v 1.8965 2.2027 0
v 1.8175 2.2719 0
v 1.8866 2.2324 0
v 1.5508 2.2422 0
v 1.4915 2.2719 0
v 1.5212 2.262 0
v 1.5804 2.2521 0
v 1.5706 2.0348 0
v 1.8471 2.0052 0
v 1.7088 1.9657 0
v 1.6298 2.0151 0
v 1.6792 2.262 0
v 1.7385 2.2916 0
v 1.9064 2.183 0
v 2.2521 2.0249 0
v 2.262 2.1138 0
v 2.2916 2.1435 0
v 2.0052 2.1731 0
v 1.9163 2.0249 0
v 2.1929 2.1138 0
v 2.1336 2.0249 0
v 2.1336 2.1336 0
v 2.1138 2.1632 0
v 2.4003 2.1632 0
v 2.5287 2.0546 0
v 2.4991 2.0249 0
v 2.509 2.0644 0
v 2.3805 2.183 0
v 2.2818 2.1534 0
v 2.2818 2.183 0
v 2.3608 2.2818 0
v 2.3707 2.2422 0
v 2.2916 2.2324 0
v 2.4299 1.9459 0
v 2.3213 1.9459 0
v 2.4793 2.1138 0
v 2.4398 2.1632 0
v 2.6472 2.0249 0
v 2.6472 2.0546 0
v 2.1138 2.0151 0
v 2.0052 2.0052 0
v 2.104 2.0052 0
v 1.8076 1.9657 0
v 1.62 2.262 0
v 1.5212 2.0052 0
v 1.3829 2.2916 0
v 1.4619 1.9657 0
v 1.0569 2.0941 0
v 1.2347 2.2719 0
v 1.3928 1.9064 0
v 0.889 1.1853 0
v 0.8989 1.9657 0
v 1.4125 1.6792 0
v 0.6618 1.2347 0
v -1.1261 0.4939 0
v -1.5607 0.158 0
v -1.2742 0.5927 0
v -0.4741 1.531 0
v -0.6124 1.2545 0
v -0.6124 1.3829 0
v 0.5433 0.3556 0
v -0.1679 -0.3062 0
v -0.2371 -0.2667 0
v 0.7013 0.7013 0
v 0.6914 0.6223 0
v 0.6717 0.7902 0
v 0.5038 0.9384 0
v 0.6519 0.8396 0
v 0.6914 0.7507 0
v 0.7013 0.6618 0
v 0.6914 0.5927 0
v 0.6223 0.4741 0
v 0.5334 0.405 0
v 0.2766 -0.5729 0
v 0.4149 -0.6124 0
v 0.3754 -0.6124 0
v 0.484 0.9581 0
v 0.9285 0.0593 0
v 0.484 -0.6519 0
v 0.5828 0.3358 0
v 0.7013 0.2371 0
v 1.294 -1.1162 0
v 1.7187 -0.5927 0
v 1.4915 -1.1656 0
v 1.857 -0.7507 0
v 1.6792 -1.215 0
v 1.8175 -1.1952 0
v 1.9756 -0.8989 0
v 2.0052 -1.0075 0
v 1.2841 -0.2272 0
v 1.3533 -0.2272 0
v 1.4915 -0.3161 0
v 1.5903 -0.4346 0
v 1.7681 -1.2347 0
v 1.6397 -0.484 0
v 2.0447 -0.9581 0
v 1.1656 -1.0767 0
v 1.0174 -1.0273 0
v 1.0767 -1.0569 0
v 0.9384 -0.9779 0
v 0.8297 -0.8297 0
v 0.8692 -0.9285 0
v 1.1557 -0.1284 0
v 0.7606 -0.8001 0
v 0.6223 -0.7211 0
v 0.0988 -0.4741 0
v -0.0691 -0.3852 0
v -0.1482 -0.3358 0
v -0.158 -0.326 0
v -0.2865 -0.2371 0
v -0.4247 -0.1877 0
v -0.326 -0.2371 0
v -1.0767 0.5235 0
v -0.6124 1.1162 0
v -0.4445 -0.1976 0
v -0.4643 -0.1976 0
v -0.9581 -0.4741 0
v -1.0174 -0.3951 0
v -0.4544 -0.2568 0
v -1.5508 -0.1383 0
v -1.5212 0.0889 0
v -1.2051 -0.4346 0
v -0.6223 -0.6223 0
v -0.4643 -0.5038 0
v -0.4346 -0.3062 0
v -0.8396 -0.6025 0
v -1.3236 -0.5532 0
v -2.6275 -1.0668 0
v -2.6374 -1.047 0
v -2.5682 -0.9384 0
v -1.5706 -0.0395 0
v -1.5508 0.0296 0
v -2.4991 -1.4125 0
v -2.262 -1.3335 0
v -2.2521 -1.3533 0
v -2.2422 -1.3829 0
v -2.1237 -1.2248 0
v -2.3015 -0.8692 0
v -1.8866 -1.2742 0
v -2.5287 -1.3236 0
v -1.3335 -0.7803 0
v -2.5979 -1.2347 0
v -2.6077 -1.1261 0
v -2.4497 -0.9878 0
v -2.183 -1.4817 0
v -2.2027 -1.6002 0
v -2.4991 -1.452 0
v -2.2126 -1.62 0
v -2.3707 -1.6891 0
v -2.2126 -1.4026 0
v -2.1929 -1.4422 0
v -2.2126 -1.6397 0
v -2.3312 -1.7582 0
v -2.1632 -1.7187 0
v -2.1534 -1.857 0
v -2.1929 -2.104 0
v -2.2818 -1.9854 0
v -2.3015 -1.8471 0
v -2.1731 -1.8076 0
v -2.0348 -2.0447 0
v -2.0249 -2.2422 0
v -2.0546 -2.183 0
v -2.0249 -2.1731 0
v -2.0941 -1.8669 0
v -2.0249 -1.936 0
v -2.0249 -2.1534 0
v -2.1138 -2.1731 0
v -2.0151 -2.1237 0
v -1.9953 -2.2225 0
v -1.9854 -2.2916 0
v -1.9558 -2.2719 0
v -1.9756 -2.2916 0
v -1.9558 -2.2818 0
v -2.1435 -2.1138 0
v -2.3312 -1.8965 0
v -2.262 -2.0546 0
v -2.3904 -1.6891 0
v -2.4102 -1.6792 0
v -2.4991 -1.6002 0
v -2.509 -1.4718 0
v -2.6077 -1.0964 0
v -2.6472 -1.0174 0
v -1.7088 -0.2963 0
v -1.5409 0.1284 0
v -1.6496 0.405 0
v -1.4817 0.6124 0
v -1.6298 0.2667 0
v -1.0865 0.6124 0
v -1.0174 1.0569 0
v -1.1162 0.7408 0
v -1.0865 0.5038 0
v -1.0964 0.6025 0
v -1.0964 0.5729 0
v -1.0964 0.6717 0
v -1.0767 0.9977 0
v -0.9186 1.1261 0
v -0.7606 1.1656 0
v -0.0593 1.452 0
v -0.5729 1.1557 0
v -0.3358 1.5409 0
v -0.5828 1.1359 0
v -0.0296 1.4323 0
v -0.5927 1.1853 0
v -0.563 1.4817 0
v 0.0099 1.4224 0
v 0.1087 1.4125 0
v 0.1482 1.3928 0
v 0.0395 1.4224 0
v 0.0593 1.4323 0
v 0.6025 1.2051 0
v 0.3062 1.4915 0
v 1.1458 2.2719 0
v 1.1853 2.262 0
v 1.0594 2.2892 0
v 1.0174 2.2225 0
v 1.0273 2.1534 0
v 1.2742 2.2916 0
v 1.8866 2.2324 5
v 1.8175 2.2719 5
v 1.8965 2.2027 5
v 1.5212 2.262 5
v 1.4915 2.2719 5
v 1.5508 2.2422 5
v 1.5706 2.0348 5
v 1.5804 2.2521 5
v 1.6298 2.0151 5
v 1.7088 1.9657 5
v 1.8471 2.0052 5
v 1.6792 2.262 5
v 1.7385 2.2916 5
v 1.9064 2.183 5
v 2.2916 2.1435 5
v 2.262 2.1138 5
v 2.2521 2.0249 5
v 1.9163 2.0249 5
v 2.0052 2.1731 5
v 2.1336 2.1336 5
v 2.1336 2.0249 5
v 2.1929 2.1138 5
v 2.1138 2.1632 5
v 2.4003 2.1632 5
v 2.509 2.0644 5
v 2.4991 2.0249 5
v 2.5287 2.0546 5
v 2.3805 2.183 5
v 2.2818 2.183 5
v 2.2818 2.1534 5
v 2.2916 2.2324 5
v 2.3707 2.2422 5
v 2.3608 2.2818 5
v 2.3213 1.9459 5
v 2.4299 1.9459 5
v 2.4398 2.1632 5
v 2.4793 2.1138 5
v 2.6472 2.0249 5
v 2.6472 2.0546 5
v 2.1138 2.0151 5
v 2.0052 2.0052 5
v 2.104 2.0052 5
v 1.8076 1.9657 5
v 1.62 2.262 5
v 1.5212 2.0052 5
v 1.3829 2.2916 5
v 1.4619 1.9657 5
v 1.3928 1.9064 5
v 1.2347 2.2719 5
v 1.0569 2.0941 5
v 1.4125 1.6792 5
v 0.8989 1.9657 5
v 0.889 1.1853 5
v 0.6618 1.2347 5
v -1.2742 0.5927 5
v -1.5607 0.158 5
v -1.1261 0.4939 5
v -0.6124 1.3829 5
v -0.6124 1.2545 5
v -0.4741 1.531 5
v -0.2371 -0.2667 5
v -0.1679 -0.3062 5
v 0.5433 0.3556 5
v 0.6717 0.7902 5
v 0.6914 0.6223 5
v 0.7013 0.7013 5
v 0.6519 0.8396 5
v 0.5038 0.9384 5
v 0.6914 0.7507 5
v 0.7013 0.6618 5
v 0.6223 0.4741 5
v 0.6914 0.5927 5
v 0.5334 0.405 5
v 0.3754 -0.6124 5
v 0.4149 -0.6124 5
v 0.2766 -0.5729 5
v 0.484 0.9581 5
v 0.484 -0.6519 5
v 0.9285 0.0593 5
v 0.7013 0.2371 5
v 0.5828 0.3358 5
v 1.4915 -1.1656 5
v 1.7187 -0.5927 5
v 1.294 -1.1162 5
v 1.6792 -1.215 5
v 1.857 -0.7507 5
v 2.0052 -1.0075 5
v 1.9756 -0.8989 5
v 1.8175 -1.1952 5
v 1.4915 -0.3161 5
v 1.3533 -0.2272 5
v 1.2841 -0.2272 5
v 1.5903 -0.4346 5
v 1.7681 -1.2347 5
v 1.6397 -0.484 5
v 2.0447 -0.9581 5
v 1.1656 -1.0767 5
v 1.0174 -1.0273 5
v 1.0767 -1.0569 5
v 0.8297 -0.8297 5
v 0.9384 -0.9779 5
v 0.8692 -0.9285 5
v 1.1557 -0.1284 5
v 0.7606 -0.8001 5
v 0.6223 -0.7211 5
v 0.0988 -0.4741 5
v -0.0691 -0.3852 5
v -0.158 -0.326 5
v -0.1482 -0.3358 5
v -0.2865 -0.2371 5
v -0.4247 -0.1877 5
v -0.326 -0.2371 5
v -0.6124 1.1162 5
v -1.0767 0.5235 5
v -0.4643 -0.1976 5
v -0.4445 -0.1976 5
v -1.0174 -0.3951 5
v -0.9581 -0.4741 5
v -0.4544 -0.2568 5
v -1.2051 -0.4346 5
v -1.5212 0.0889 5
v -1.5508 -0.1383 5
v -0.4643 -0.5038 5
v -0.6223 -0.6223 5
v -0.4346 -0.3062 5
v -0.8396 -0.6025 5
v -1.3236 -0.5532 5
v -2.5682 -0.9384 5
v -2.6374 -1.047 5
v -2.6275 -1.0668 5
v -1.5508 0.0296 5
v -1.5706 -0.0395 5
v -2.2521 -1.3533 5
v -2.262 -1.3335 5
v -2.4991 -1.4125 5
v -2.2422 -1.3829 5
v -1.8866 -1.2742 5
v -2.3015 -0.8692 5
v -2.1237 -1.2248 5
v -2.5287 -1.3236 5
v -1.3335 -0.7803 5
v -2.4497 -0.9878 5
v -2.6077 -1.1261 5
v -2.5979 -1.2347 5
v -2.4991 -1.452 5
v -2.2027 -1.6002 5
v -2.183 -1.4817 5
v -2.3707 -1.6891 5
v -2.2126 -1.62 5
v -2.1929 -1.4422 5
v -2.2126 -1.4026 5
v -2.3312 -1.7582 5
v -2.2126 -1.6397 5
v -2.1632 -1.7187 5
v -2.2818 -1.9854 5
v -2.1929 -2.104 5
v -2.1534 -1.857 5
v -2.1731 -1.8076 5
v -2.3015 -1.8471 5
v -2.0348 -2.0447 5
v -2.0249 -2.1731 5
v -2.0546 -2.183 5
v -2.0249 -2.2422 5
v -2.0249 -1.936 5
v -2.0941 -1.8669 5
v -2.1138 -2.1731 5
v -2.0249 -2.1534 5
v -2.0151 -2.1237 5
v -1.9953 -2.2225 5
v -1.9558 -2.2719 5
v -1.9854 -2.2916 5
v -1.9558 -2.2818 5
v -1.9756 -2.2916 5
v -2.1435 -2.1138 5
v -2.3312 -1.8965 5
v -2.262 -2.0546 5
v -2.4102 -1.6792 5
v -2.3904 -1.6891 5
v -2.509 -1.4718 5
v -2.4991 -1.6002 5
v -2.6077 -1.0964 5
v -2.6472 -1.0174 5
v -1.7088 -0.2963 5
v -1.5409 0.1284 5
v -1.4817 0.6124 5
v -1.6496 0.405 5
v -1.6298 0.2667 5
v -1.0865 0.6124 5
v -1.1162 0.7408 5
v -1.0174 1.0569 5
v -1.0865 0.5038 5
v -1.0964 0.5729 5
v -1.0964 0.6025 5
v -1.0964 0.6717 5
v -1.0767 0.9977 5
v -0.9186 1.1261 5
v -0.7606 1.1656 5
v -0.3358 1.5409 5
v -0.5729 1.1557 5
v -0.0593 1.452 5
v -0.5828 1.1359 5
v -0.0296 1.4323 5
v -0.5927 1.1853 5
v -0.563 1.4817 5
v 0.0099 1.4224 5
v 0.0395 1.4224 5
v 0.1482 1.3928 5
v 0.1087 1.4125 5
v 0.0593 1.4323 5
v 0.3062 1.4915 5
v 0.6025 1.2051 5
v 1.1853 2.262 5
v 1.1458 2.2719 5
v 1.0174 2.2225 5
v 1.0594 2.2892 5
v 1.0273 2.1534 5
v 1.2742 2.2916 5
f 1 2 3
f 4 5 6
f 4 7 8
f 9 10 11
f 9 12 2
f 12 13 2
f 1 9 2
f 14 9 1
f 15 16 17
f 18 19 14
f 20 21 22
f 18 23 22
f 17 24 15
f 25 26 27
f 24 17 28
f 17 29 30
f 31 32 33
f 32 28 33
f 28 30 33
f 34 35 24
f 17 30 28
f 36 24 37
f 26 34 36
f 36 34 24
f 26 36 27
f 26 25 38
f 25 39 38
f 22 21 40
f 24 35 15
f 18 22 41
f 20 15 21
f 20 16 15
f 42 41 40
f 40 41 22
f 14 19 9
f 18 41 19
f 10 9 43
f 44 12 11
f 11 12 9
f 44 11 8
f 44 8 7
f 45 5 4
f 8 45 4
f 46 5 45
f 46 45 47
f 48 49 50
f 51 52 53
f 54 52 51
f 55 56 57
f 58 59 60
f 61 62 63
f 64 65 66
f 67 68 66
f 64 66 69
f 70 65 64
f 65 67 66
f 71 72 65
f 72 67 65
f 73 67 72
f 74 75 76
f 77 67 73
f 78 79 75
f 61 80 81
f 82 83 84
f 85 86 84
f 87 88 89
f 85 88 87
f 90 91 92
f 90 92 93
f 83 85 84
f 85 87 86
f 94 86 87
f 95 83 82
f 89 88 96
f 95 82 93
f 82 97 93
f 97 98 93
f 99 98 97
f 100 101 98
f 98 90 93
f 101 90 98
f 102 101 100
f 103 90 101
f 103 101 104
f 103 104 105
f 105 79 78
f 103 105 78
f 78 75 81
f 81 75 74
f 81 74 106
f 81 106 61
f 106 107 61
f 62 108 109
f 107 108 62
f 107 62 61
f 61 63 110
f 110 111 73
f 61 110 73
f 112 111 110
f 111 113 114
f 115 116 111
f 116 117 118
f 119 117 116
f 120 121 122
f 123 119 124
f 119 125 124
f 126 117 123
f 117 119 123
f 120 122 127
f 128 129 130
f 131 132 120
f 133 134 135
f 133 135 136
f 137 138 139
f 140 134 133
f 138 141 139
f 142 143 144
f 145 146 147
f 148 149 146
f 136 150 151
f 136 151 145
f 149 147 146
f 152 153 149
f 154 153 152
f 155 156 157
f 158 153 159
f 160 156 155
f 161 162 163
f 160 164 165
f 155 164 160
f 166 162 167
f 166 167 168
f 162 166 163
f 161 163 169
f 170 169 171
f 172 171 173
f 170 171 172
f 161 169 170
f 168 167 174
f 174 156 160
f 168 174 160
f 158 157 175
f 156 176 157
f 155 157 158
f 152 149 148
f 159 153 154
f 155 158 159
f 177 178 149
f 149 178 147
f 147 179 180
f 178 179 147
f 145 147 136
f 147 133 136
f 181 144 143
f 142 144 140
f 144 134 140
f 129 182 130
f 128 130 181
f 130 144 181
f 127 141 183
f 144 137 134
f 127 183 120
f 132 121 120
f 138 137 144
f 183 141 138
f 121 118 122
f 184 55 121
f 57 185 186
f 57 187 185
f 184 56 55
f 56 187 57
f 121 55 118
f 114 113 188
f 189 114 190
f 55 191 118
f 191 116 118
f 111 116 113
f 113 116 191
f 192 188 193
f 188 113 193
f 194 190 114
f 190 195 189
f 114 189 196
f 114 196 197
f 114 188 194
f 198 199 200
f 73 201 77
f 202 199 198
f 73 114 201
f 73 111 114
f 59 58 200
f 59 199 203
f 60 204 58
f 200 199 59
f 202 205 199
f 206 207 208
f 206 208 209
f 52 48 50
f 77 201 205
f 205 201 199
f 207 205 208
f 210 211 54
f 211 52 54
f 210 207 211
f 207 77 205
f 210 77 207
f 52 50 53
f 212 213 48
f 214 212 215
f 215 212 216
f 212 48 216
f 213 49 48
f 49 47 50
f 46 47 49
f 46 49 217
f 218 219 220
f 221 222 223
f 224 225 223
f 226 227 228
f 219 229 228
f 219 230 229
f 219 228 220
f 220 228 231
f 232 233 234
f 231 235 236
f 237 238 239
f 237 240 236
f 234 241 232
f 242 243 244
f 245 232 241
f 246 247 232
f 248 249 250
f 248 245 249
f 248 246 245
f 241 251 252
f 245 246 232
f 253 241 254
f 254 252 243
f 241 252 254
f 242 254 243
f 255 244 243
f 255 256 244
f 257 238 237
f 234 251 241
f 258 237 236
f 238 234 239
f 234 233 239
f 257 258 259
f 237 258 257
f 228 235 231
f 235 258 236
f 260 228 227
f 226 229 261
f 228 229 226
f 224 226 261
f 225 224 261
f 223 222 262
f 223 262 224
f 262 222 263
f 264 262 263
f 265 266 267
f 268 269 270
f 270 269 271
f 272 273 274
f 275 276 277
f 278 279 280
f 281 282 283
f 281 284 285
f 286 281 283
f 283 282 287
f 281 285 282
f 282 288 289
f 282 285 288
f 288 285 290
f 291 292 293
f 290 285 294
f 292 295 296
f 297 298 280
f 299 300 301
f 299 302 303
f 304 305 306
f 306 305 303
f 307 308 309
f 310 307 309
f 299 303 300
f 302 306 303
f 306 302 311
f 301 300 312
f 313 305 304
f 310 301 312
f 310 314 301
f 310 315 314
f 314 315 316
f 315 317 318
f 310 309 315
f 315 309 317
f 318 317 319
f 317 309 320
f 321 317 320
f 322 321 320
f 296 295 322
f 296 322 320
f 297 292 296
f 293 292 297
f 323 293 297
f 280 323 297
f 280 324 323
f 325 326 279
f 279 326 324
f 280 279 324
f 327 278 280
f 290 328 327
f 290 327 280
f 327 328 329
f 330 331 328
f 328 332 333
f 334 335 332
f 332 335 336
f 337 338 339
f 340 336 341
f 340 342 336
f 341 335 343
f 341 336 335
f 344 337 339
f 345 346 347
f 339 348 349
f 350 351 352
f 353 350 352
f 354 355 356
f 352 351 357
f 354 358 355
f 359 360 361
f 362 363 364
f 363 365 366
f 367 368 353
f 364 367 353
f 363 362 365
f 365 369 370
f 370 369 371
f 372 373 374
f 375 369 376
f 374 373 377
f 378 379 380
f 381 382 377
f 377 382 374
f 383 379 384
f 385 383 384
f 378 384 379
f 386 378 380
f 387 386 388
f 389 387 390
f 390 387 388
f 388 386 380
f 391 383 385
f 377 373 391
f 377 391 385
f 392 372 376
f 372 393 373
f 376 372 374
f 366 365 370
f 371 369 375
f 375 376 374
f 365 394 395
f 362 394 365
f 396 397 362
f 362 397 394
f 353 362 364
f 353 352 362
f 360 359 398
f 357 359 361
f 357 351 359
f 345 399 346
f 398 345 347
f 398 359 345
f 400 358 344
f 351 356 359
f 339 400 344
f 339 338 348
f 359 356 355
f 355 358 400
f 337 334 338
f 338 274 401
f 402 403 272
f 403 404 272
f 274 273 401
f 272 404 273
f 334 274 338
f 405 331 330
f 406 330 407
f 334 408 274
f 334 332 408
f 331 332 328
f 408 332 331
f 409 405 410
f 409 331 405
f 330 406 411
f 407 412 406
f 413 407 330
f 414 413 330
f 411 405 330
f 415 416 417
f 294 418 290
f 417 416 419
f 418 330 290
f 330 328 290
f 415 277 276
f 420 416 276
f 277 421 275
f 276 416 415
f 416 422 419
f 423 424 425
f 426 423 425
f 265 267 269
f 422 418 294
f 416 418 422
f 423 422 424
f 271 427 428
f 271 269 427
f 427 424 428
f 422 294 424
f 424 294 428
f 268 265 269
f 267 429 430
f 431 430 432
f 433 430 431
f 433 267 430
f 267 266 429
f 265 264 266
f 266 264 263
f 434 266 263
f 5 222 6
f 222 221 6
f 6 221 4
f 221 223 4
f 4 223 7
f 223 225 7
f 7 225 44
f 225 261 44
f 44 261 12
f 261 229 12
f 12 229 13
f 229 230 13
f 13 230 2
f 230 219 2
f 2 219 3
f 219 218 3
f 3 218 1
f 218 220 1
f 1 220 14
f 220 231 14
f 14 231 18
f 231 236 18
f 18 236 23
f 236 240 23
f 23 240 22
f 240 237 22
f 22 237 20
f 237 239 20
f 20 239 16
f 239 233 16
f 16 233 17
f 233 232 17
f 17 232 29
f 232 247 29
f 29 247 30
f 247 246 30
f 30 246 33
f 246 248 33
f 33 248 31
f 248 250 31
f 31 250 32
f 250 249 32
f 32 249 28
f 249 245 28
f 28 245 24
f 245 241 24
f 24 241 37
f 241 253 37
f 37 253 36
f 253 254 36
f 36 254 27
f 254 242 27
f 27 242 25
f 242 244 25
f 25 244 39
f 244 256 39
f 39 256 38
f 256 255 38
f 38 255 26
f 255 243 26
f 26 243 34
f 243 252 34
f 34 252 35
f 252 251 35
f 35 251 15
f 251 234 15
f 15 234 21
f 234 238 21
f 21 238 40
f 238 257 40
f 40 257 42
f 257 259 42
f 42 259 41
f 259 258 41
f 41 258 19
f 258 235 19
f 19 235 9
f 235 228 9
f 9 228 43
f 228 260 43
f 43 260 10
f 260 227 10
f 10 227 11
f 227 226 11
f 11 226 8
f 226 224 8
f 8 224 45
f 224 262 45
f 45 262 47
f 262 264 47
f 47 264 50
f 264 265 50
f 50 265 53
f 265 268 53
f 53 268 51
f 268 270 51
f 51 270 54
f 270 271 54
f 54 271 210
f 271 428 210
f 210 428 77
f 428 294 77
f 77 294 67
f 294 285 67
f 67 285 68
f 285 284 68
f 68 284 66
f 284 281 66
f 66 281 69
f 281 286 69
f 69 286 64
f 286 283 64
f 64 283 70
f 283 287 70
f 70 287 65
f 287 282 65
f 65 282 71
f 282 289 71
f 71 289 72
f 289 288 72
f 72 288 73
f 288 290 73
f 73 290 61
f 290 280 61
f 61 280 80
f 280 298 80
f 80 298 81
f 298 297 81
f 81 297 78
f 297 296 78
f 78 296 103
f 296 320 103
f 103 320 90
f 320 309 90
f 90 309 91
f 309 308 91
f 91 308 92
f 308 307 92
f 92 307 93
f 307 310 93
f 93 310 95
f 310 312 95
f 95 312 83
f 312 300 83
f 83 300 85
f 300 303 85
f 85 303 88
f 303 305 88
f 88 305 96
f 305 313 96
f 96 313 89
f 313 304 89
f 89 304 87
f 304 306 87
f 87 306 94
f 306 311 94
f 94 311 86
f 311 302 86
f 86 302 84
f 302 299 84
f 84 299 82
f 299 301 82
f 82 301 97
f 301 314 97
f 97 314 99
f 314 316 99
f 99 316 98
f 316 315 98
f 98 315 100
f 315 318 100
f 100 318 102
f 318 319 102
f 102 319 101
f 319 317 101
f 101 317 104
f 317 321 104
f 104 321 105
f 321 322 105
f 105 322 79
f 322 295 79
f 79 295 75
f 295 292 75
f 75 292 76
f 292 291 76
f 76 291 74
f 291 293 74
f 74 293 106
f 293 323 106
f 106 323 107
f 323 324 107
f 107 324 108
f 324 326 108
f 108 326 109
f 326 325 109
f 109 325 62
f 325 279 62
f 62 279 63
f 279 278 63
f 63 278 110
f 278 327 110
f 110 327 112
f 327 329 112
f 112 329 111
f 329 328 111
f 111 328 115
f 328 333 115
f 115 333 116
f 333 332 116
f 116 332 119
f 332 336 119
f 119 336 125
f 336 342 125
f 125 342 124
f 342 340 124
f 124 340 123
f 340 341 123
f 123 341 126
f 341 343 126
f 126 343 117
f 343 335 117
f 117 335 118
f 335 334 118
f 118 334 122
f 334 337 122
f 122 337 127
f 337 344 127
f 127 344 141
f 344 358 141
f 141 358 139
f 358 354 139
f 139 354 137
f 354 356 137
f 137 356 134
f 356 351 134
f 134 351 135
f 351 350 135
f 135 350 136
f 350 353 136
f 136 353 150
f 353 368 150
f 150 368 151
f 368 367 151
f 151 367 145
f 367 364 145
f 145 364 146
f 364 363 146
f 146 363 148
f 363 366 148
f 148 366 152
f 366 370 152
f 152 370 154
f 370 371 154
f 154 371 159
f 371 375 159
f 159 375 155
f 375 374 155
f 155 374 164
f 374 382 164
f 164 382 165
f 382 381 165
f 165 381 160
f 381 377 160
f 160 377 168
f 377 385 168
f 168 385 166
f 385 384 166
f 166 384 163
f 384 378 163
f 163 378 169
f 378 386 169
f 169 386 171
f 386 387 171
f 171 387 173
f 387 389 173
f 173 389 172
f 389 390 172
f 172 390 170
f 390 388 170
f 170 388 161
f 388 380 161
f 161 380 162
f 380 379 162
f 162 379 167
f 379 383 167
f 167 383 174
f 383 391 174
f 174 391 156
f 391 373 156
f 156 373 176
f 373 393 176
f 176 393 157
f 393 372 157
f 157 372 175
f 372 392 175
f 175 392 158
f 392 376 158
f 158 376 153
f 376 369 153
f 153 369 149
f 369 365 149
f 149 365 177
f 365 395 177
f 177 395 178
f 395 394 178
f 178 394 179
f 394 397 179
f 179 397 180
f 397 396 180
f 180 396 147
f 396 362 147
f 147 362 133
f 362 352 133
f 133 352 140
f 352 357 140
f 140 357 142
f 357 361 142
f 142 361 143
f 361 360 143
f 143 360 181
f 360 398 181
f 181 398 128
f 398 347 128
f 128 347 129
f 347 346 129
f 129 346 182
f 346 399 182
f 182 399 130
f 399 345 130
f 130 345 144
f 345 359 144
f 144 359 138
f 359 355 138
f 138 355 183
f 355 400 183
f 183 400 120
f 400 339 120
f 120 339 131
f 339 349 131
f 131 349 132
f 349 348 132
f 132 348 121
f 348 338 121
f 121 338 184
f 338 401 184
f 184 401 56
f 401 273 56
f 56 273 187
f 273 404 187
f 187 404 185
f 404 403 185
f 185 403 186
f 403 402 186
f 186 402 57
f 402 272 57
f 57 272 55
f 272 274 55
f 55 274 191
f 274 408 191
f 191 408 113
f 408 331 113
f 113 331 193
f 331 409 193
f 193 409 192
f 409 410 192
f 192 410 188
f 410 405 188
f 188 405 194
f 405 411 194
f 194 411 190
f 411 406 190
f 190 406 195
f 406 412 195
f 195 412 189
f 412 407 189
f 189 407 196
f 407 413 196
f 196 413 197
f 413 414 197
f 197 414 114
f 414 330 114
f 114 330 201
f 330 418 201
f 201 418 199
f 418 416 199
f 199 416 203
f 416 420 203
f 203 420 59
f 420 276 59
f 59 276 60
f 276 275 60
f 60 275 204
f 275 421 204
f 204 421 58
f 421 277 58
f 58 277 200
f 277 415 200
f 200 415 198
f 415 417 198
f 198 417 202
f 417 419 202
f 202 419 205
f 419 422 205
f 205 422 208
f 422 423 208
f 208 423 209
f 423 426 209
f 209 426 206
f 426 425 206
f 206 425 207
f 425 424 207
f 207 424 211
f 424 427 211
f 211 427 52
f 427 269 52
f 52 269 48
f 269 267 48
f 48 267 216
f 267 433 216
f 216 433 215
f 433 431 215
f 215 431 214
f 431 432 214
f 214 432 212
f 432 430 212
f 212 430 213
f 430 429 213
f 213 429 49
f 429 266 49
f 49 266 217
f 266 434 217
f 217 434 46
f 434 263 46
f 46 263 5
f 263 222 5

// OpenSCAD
// Module names are of the form poly_<inkscape-path-id>().  As a result,
// you can associate a polygon in this OpenSCAD program with the corresponding
// SVG element in the Inkscape document by looking for the XML element with
// the attribute id="inkscape-path-id".

// fudge value is used to ensure that subtracted solids are a tad taller
// in the z dimension than the polygon being subtracted from.  This helps
// keep the resulting .stl file manifold.
fudge = 0.1;

module poly_path4397(h)
{
  scale([25.4/90, -25.4/90, 1]) union()
  {
    linear_extrude(height=h)
      polygon([[8.855000,-7.175000],[8.610000,-6.895000],[8.225000,-6.895000],[7.980000,-7.175000],[7.770000,-7.175000],[7.560000,-7.175000],[7.490000,-7.140000],[7.455000,-7.105000],[7.105000,-7.105000],[6.790000,-7.175000],[6.545000,-7.105000],[6.405000,-6.965000],[6.055000,-6.965000],[5.775000,-7.140000],[5.565000,-7.210000],[5.390000,-7.105000],[5.180000,-6.965000],[4.935000,-6.755000],[5.005000,-5.950000],[3.150000,-4.200000],[2.345000,-4.375000],[2.135000,-4.270000],[1.715000,-3.395000],[1.785000,-3.325000],[1.995000,-3.185000],[2.310000,-2.975000],[2.380000,-2.800000],[2.450000,-2.660000],[2.485000,-2.485000],[2.485000,-2.345000],[2.450000,-2.205000],[2.450000,-2.100000],[2.205000,-1.680000],[1.890000,-1.435000],[1.925000,-1.260000],[2.065000,-1.190000],[2.485000,-0.840000],[3.290000,-0.210000],[4.095000,0.455000],[4.550000,0.805000],[4.795000,0.805000],[5.285000,1.120000],[5.635000,1.540000],[5.810000,1.715000],[6.090000,2.100000],[6.580000,2.660000],[7.000000,3.185000],[7.245000,3.395000],[7.105000,3.570000],[6.790000,3.885000],[6.440000,4.235000],[6.265000,4.375000],[5.950000,4.305000],[5.285000,4.130000],[4.585000,3.955000],[4.130000,3.815000],[3.815000,3.745000],[3.605000,3.640000],[3.325000,3.465000],[3.080000,3.290000],[3.010000,3.115000],[2.940000,2.940000],[2.695000,2.835000],[2.205000,2.555000],[1.715000,2.310000],[1.470000,2.170000],[1.330000,2.170000],[0.980000,2.030000],[0.350000,1.680000],[-0.245000,1.365000],[-0.525000,1.190000],[-0.560000,1.155000],[-0.595000,1.085000],[-0.840000,0.945000],[-1.015000,0.840000],[-1.155000,0.840000],[-1.505000,0.665000],[-1.575000,0.700000],[-1.645000,0.700000],[-1.610000,0.910000],[-1.540000,1.085000],[-1.645000,1.785000],[-2.205000,2.205000],[-2.975000,2.135000],[-3.395000,1.680000],[-3.605000,1.400000],[-4.270000,1.540000],[-4.690000,1.960000],[-4.725000,2.765000],[-6.685000,4.515000],[-7.525000,4.340000],[-8.015000,4.725000],[-7.980000,4.795000],[-7.945000,4.900000],[-7.840000,4.970000],[-7.770000,5.110000],[-7.735000,5.250000],[-7.805000,5.670000],[-7.840000,5.740000],[-7.840000,5.810000],[-7.665000,6.090000],[-7.700000,6.405000],[-7.630000,6.580000],[-7.420000,6.615000],[-7.175000,6.860000],[-7.210000,7.245000],[-7.140000,7.525000],[-7.175000,7.630000],[-7.175000,7.700000],[-7.070000,7.875000],[-6.930000,8.050000],[-6.930000,8.085000],[-7.000000,8.120000],[-7.035000,8.120000],[-7.175000,7.945000],[-7.280000,7.735000],[-7.490000,7.700000],[-7.525000,7.630000],[-7.595000,7.490000],[-7.770000,7.455000],[-8.015000,7.280000],[-8.085000,7.035000],[-8.260000,6.720000],[-8.155000,6.545000],[-8.260000,6.230000],[-8.400000,5.985000],[-8.470000,5.985000],[-8.540000,5.950000],[-8.855000,5.670000],[-8.890000,5.215000],[-8.855000,5.145000],[-8.855000,5.005000],[-8.960000,4.690000],[-9.205000,4.375000],[-9.240000,3.990000],[-9.240000,3.885000],[-9.310000,3.780000],[-9.345000,3.710000],[-9.380000,3.605000],[-9.100000,3.325000],[-8.680000,3.500000],[-8.155000,3.080000],[-7.105000,2.065000],[-6.055000,1.050000],[-5.495000,0.490000],[-5.565000,0.140000],[-5.495000,-0.105000],[-5.390000,-0.315000],[-5.460000,-0.455000],[-5.530000,-0.560000],[-5.775000,-0.945000],[-5.845000,-1.435000],[-5.250000,-2.170000],[-4.515000,-2.100000],[-3.990000,-1.750000],[-3.850000,-1.785000],[-3.815000,-1.855000],[-3.885000,-2.030000],[-3.885000,-2.100000],[-3.885000,-2.135000],[-3.850000,-2.170000],[-3.885000,-2.380000],[-3.955000,-2.625000],[-3.815000,-3.535000],[-3.605000,-3.745000],[-3.255000,-3.990000],[-2.695000,-4.130000],[-2.170000,-3.955000],[-2.065000,-4.025000],[-2.030000,-4.095000],[-2.100000,-4.200000],[-2.170000,-4.445000],[-2.170000,-4.900000],[-1.995000,-5.250000],[-1.680000,-5.425000],[-1.190000,-5.460000],[-0.210000,-5.145000],[-0.105000,-5.075000],[0.035000,-5.040000],[0.140000,-5.040000],[0.210000,-5.075000],[0.385000,-5.005000],[0.525000,-4.935000],[1.085000,-5.285000],[2.135000,-6.125000],[3.185000,-6.965000],[3.745000,-7.420000],[3.640000,-7.630000],[3.605000,-7.875000],[3.753750,-8.111250],[4.060000,-8.050000],[4.200000,-8.015000],[4.375000,-8.050000],[4.515000,-8.120000],[4.900000,-8.120000],[5.285000,-8.050000],[5.390000,-8.015000],[5.495000,-7.945000],[5.600000,-7.980000],[5.740000,-8.015000],[5.950000,-8.015000],[6.020000,-8.050000],[6.160000,-8.120000],[6.440000,-8.050000],[6.685000,-7.910000],[6.720000,-7.805000],[6.755000,-7.735000],[7.105000,-7.700000],[7.490000,-7.665000],[7.560000,-7.560000],[7.665000,-7.525000],[7.770000,-7.490000],[7.910000,-7.490000],[8.015000,-7.490000],[8.120000,-7.595000],[8.085000,-7.630000],[8.085000,-7.700000],[8.085000,-7.735000],[8.120000,-7.910000],[8.365000,-8.085000],[8.400000,-7.945000],[8.435000,-7.735000],[8.505000,-7.665000],[8.645000,-7.665000],[8.785000,-7.490000],[8.890000,-7.315000],[8.960000,-7.280000],[9.135000,-7.280000],[9.380000,-7.280000],[9.380000,-7.175000],[9.135000,-7.175000],[8.855000,-7.175000],[8.855000,-7.175000]]);
  }
}

poly_path4397(5);
